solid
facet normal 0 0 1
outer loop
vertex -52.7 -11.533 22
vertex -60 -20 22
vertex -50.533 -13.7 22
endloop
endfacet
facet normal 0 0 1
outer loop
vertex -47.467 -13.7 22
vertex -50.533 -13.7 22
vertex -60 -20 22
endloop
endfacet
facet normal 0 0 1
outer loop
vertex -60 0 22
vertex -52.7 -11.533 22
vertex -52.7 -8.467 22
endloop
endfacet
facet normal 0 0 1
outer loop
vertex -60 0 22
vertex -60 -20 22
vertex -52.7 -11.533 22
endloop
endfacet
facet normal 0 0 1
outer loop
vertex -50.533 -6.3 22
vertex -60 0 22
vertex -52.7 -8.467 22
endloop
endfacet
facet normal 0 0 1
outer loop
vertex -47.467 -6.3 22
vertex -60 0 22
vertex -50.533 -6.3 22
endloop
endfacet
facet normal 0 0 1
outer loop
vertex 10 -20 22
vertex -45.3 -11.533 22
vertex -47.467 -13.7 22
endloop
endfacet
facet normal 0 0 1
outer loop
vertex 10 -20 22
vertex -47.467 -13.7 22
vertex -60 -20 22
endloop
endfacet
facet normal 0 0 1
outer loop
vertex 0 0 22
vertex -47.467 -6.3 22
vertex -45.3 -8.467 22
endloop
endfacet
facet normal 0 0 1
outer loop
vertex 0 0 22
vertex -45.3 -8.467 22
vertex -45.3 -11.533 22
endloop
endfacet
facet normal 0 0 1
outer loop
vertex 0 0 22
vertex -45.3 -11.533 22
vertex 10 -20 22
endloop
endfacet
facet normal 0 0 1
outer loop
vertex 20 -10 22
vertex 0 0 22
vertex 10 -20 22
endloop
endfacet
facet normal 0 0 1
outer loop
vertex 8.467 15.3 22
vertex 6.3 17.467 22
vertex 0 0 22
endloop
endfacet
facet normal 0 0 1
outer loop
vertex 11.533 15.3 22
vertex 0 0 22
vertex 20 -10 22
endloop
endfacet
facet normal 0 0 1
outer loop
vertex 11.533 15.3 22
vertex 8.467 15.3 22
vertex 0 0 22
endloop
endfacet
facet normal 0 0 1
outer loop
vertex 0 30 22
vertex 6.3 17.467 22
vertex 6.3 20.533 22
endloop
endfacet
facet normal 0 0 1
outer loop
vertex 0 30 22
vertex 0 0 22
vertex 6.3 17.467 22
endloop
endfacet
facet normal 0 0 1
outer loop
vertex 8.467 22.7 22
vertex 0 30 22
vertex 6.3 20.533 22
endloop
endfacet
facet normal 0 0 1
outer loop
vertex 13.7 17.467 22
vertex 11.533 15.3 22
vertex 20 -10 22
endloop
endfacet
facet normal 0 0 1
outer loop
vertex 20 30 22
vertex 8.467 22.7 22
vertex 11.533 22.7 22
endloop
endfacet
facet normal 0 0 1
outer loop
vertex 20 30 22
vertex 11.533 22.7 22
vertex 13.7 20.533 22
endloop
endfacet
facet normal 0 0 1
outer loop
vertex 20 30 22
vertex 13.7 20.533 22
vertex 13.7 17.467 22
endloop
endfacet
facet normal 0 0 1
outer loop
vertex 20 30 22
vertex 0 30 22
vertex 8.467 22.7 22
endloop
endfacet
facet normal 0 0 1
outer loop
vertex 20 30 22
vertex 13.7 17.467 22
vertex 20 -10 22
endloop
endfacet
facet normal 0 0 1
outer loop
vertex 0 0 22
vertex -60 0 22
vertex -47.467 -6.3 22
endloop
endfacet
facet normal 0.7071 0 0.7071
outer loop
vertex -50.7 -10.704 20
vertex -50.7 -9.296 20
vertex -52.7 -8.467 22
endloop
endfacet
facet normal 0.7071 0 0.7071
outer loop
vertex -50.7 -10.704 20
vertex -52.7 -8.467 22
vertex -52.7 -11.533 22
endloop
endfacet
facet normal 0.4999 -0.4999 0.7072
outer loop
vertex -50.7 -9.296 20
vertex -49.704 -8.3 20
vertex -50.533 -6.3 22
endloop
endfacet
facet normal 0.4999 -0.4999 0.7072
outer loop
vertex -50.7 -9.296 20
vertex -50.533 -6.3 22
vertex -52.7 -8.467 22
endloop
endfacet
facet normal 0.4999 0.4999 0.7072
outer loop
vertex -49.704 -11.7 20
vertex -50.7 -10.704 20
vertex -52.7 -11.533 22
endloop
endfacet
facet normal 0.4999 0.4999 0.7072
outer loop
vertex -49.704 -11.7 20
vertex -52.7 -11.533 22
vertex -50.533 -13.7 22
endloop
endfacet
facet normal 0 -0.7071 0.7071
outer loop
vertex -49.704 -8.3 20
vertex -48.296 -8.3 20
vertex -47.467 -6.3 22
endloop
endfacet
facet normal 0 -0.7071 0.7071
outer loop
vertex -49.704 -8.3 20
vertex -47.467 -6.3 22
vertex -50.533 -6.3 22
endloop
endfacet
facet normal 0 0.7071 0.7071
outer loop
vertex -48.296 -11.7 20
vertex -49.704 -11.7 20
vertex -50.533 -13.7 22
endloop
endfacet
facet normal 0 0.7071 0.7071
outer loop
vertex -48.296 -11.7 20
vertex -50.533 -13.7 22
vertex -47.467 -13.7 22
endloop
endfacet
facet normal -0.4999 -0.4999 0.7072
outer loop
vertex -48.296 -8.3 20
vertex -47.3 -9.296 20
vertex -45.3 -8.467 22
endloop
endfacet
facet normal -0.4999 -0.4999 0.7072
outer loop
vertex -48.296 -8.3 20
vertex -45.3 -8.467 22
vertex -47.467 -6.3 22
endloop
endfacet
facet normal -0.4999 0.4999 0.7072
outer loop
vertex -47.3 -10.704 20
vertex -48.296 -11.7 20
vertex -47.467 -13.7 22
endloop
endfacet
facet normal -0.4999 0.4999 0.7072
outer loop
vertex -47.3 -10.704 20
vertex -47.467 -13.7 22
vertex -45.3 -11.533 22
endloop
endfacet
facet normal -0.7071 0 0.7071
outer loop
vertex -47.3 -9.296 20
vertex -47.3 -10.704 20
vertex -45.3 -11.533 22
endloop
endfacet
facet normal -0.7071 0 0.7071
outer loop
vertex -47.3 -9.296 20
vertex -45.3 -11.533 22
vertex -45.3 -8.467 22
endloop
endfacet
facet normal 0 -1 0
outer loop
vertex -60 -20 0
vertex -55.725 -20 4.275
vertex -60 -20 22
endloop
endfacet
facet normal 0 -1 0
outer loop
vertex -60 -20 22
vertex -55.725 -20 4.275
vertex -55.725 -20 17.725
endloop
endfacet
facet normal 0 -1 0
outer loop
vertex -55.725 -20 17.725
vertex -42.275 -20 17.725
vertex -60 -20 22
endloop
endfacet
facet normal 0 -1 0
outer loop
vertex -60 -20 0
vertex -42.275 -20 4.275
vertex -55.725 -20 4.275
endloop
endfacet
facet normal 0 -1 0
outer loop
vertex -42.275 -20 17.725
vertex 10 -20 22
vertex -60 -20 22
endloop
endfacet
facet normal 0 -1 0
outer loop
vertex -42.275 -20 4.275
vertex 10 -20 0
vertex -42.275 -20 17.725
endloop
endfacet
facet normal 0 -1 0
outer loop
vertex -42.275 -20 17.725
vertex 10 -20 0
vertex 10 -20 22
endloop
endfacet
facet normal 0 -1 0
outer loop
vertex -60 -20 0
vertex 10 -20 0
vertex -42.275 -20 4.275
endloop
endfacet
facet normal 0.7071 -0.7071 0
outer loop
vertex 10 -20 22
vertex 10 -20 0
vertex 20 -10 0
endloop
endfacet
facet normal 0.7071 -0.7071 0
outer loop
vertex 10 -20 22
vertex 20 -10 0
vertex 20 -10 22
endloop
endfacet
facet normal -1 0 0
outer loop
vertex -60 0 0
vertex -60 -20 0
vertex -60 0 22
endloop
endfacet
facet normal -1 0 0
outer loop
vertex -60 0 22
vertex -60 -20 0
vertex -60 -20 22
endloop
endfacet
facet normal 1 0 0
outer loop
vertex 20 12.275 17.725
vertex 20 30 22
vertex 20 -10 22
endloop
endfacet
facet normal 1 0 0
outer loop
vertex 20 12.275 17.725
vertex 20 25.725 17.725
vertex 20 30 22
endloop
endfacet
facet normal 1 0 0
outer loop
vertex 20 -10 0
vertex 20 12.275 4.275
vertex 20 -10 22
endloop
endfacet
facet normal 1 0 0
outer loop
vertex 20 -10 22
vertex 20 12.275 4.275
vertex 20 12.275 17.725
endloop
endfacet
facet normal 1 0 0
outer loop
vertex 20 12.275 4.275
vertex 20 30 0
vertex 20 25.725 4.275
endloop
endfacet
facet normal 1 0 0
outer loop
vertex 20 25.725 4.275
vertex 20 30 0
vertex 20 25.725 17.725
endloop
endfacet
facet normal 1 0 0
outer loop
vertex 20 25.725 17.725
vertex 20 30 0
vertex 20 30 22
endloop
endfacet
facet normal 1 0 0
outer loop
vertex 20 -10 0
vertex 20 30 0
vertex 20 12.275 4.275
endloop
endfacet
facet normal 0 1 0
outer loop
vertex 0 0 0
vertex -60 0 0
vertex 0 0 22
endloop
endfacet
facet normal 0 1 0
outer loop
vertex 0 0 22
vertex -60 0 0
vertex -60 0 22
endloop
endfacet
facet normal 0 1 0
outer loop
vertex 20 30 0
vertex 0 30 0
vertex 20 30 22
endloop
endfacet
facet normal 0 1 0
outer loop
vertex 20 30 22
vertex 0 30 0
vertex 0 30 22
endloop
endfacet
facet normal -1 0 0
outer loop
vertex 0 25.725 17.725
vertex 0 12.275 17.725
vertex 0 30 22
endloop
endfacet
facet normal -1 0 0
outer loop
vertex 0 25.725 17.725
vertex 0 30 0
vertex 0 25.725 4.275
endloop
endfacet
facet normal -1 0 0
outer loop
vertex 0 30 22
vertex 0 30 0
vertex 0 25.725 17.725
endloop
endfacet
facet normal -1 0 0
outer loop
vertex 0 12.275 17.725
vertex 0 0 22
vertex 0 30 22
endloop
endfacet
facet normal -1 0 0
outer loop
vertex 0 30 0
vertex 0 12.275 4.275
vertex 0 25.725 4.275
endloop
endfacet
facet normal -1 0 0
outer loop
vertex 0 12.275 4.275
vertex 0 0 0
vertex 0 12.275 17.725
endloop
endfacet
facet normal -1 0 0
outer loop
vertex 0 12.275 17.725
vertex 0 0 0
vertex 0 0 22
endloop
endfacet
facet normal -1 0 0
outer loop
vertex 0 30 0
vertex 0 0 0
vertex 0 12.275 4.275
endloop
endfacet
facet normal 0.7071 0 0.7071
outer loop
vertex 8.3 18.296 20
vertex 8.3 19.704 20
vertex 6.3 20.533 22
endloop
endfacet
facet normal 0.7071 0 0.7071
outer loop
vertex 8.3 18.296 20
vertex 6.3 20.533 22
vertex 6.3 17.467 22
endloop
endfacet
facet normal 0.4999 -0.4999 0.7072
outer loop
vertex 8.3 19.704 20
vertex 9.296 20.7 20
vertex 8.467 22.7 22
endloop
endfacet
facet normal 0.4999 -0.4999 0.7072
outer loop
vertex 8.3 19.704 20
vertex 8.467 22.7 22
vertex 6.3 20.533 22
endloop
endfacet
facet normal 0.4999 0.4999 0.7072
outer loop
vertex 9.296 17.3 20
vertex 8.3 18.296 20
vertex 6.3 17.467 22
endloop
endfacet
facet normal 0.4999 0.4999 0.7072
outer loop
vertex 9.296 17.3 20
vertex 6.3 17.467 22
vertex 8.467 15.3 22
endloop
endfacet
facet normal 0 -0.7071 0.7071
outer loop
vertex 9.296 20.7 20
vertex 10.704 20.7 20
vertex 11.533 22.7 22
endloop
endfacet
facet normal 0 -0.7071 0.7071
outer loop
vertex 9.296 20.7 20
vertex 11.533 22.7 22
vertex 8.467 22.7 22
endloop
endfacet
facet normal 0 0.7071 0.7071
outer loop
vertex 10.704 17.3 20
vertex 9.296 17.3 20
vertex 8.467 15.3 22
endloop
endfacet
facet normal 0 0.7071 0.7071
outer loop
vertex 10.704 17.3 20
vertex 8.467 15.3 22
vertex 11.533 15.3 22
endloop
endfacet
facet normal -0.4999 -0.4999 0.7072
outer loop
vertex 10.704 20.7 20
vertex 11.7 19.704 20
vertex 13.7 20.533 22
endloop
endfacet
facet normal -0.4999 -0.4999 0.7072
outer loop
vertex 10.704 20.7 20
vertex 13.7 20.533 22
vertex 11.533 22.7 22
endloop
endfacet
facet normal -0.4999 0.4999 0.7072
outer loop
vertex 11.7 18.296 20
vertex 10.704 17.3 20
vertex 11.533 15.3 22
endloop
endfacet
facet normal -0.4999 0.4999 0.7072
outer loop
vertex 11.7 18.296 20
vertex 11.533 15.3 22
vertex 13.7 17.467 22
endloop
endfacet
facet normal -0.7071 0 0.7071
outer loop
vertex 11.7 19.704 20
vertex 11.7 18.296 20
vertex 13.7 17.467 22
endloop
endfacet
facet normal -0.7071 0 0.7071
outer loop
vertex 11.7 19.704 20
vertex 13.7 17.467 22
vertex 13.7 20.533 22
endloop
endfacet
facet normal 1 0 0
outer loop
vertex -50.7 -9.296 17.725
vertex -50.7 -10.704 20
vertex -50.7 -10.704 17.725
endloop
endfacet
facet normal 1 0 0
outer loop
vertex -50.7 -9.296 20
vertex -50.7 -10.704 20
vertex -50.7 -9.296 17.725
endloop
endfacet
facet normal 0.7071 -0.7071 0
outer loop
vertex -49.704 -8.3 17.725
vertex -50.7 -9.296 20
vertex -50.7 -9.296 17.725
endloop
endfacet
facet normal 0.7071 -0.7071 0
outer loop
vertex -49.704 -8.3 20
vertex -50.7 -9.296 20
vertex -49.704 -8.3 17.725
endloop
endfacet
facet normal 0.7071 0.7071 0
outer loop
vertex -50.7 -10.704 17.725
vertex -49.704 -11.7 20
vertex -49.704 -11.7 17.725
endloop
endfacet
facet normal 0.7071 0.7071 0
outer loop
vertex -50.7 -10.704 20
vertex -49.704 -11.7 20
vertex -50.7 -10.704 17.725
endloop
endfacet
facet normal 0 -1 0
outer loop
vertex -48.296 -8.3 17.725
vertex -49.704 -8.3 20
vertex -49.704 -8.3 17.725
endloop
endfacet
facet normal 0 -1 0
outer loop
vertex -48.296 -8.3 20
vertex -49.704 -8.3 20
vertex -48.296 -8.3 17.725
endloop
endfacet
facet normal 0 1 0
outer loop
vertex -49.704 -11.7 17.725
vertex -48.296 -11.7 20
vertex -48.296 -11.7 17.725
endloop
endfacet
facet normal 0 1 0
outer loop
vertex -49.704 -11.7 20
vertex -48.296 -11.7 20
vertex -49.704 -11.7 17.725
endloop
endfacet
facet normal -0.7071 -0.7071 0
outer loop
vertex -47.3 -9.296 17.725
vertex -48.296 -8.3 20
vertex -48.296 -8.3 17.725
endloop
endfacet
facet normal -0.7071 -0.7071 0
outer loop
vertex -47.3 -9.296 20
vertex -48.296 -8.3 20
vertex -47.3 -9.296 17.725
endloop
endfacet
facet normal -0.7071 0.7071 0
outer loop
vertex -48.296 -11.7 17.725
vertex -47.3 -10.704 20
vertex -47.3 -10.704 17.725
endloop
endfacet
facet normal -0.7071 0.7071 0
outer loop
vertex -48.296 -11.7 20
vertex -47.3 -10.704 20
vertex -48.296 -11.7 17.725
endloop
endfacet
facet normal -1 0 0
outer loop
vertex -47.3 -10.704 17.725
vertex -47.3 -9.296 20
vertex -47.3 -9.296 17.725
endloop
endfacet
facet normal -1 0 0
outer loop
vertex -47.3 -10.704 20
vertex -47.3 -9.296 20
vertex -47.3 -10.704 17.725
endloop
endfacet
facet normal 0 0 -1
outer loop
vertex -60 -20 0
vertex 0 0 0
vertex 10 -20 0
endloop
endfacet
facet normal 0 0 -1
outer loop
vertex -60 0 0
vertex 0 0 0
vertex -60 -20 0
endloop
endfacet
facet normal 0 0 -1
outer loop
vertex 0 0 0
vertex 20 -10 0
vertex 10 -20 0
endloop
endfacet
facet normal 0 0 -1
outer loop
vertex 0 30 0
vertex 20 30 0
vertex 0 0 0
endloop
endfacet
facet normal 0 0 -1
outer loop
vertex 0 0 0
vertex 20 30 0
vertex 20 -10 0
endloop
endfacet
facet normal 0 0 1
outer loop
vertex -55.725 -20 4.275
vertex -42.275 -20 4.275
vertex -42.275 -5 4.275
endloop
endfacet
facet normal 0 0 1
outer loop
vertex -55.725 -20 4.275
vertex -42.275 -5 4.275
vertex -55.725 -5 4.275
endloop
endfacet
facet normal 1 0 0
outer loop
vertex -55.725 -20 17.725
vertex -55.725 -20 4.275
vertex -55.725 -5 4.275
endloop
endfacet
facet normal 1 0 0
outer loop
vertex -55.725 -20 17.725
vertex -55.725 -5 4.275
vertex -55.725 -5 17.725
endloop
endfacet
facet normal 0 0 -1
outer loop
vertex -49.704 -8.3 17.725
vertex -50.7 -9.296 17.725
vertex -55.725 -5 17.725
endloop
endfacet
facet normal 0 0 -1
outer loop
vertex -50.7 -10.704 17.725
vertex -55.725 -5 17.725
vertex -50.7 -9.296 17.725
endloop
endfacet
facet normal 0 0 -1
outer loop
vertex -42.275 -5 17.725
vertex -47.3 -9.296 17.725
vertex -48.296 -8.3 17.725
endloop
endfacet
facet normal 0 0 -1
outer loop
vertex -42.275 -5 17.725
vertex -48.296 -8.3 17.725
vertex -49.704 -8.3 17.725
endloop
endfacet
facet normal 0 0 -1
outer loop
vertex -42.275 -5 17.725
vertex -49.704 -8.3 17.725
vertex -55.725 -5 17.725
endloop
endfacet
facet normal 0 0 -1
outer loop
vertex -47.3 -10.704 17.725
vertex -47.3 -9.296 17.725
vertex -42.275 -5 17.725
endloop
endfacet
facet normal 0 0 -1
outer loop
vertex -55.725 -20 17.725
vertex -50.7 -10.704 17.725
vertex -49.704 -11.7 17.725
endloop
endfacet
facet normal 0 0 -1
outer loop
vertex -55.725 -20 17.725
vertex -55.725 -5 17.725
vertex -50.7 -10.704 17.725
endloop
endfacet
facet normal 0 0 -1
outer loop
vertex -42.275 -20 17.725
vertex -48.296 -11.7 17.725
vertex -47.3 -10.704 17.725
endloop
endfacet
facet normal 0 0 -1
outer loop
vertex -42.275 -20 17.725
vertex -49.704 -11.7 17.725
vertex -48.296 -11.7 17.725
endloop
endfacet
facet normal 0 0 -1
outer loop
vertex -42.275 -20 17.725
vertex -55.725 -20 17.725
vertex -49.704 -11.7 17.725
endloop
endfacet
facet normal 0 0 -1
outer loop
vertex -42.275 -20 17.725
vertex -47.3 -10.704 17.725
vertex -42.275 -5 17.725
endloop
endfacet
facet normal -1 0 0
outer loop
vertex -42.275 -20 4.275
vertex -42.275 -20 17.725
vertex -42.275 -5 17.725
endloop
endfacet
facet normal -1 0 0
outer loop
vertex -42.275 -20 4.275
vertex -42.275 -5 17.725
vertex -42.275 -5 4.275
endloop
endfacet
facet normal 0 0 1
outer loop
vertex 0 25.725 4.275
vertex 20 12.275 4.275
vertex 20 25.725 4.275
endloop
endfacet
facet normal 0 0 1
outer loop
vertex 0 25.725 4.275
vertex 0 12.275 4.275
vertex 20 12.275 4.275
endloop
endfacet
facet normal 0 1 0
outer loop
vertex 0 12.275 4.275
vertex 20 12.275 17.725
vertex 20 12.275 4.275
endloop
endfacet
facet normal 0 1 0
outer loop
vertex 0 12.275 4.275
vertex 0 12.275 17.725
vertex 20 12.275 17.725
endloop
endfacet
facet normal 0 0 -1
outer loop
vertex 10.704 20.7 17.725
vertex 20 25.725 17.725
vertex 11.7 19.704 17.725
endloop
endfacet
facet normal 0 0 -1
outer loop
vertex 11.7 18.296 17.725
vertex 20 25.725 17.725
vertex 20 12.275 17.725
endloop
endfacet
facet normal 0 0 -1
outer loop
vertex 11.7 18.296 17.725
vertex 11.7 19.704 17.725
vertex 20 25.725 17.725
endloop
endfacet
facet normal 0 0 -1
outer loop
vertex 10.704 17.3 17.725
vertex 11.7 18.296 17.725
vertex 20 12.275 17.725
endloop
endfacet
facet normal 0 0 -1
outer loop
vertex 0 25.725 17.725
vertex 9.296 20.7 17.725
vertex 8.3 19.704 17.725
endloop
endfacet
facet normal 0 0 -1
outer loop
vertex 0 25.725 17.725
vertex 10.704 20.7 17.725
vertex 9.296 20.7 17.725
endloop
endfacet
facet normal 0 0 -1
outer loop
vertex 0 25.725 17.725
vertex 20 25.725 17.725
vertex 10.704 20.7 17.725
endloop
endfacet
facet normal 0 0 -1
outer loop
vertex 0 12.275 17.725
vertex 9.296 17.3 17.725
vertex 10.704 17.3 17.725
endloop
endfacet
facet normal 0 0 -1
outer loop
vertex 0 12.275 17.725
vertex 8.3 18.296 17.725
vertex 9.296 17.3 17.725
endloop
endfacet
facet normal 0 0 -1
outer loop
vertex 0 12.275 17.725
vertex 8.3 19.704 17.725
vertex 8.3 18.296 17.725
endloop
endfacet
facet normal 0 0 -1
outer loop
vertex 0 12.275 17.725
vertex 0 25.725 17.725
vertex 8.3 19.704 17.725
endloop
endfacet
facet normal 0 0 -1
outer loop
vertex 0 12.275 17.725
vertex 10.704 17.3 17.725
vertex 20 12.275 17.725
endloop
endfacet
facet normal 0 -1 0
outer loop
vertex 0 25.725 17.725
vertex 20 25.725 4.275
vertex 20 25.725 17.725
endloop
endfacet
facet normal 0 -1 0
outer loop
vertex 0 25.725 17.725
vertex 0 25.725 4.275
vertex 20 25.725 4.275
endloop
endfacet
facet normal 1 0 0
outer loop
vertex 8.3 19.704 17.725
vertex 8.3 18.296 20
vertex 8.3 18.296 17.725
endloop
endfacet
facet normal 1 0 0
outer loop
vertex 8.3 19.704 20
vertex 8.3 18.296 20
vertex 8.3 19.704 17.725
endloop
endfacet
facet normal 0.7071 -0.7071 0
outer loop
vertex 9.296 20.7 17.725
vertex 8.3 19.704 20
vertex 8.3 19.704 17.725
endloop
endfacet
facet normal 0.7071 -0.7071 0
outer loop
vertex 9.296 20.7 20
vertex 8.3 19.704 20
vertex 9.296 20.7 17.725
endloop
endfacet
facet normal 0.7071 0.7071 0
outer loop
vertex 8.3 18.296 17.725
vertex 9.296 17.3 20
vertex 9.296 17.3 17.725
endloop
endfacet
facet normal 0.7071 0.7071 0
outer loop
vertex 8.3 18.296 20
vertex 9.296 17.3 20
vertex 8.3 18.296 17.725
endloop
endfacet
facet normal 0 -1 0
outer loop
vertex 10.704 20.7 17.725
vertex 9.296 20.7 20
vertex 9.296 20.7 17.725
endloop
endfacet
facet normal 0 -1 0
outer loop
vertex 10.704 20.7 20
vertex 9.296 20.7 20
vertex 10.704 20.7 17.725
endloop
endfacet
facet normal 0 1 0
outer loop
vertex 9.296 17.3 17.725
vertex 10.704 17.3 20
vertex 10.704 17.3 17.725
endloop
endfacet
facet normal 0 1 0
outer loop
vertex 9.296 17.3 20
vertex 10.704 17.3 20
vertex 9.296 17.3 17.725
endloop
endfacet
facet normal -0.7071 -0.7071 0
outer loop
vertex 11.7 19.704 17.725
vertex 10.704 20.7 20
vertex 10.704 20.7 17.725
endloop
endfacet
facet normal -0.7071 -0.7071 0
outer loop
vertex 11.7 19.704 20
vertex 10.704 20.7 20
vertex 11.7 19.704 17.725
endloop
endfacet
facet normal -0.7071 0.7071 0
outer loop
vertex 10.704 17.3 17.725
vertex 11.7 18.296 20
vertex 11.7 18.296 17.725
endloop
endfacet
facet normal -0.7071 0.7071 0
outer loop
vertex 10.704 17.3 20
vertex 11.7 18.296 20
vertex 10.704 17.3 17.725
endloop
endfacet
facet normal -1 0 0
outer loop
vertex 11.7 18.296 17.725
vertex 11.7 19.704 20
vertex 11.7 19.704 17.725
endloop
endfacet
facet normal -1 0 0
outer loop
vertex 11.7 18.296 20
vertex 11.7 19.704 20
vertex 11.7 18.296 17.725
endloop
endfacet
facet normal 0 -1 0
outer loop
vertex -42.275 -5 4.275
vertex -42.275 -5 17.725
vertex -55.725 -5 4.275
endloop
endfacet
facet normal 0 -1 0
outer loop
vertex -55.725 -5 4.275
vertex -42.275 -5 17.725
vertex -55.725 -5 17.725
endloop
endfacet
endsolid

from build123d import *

# Parameters (mm, degrees)
PAD_DEPTH       = 22
SKETCH001_W     = 13.45
SKETCH001_H     = 13.45
POCKET_DEPTH    = 20.001
SKETCH002_W     = 13.45
SKETCH002_H     = 13.45
POCKET001_DEPTH = 15
CHAMFER_SIZE    = 10
POCKET002_DEPTH = 5
CHAMFER001_SIZE = 2


with BuildPart() as part:
    # Sketch → Pad (new body)
    with BuildSketch(Plane.XY):
        Polygon((0, 30), (0, 0), (-60, 0), (-60, -20), (20, -20), (20, 30), align=None)
    extrude(amount=PAD_DEPTH)

    # Sketch001 (on Face1 of Pad) → Pocket (cut, through all)
    with BuildSketch(Plane(origin=(0, 0, 0), x_dir=(0, -1, 0), z_dir=(-1, 0, 0))):
        with Locations((-19, 11)):
            Rectangle(SKETCH001_W, SKETCH001_H)
    extrude(amount=-POCKET_DEPTH, mode=Mode.SUBTRACT)

    # Sketch002 (on Face12 of Pocket) → Pocket001 (cut)
    with BuildSketch(Plane.XZ.offset(20)):
        with Locations((-49, 11)):
            Rectangle(SKETCH002_W, SKETCH002_H)
    extrude(amount=-POCKET001_DEPTH, mode=Mode.SUBTRACT)

    # Chamfer
    chamfer_edges = [part.edges().sort_by_distance(p)[0] for p in [
        (20, -20, 11),
    ]]
    chamfer(chamfer_edges, length=CHAMFER_SIZE)

    # Sketch003 (on Face9 of Chamfer) → Pocket002 (cut)
    with BuildSketch(Plane.XY.offset(22)):
        Polygon((9.295837, 17.3), (10.704163, 17.3), (11.7, 18.295837), (11.7, 19.704163), (10.704163, 20.7), (9.295837, 20.7), (8.3, 19.704163), (8.3, 18.295837), align=None)
        Polygon((-47.3, -10.704163), (-47.3, -9.295837), (-48.295837, -8.3), (-49.704163, -8.3), (-50.7, -9.295837), (-50.7, -10.704163), (-49.704163, -11.7), (-48.295837, -11.7), align=None)
    extrude(amount=-POCKET002_DEPTH, mode=Mode.SUBTRACT)

    # Chamfer001
    chamfer001_edges = [part.edges().sort_by_distance(p)[0] for p in [
        (-50.7, -10, 22),
        (-50.202082, -8.797918, 22),
        (-49, -8.3, 22),
        (-47.797918, -8.797918, 22),
        (-47.3, -10, 22),
        (-47.797918, -11.202082, 22),
        (-49, -11.7, 22),
        (-50.202082, -11.202082, 22),
        (8.3, 19, 22),
        (8.797918, 20.202082, 22),
        (10, 20.7, 22),
        (11.202082, 20.202082, 22),
        (11.7, 19, 22),
        (11.202082, 17.797918, 22),
        (10, 17.3, 22),
        (8.797918, 17.797918, 22),
    ]]
    chamfer(chamfer001_edges, length=CHAMFER001_SIZE)


solid = part.part
